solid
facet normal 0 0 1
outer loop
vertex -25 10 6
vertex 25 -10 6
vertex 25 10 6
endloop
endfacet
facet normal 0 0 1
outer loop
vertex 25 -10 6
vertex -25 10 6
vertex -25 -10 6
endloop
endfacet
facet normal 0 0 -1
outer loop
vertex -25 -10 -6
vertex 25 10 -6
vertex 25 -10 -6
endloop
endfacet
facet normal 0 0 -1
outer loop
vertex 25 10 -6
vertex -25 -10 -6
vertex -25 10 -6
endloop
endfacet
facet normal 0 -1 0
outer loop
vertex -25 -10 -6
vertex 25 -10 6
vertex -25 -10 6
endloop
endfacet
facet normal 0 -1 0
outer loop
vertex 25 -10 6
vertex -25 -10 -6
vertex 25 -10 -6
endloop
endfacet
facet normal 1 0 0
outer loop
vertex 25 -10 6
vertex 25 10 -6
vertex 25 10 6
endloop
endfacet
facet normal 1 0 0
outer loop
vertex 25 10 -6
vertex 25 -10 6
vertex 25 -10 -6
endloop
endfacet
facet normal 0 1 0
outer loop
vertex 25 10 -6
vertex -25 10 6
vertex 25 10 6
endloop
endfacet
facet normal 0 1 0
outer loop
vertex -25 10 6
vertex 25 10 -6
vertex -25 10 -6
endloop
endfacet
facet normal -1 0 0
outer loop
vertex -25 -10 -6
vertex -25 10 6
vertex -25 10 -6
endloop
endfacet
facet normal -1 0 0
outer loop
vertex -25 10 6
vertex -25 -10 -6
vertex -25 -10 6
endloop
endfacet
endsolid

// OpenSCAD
// Define the dimensions of the rectangular plate
module rectangular_plate(length, width, thickness) {
    cube([length, width, thickness], center = true);
}

// Parameters for the rectangular plate
plate_length = 50;  // Length of the plate
plate_width = 20;   // Width of the plate
plate_thickness = 12; // Combined thickness of the original six plates (6 * 2)

// Render the single solid rectangular plate
rectangular_plate(plate_length, plate_width, plate_thickness);
